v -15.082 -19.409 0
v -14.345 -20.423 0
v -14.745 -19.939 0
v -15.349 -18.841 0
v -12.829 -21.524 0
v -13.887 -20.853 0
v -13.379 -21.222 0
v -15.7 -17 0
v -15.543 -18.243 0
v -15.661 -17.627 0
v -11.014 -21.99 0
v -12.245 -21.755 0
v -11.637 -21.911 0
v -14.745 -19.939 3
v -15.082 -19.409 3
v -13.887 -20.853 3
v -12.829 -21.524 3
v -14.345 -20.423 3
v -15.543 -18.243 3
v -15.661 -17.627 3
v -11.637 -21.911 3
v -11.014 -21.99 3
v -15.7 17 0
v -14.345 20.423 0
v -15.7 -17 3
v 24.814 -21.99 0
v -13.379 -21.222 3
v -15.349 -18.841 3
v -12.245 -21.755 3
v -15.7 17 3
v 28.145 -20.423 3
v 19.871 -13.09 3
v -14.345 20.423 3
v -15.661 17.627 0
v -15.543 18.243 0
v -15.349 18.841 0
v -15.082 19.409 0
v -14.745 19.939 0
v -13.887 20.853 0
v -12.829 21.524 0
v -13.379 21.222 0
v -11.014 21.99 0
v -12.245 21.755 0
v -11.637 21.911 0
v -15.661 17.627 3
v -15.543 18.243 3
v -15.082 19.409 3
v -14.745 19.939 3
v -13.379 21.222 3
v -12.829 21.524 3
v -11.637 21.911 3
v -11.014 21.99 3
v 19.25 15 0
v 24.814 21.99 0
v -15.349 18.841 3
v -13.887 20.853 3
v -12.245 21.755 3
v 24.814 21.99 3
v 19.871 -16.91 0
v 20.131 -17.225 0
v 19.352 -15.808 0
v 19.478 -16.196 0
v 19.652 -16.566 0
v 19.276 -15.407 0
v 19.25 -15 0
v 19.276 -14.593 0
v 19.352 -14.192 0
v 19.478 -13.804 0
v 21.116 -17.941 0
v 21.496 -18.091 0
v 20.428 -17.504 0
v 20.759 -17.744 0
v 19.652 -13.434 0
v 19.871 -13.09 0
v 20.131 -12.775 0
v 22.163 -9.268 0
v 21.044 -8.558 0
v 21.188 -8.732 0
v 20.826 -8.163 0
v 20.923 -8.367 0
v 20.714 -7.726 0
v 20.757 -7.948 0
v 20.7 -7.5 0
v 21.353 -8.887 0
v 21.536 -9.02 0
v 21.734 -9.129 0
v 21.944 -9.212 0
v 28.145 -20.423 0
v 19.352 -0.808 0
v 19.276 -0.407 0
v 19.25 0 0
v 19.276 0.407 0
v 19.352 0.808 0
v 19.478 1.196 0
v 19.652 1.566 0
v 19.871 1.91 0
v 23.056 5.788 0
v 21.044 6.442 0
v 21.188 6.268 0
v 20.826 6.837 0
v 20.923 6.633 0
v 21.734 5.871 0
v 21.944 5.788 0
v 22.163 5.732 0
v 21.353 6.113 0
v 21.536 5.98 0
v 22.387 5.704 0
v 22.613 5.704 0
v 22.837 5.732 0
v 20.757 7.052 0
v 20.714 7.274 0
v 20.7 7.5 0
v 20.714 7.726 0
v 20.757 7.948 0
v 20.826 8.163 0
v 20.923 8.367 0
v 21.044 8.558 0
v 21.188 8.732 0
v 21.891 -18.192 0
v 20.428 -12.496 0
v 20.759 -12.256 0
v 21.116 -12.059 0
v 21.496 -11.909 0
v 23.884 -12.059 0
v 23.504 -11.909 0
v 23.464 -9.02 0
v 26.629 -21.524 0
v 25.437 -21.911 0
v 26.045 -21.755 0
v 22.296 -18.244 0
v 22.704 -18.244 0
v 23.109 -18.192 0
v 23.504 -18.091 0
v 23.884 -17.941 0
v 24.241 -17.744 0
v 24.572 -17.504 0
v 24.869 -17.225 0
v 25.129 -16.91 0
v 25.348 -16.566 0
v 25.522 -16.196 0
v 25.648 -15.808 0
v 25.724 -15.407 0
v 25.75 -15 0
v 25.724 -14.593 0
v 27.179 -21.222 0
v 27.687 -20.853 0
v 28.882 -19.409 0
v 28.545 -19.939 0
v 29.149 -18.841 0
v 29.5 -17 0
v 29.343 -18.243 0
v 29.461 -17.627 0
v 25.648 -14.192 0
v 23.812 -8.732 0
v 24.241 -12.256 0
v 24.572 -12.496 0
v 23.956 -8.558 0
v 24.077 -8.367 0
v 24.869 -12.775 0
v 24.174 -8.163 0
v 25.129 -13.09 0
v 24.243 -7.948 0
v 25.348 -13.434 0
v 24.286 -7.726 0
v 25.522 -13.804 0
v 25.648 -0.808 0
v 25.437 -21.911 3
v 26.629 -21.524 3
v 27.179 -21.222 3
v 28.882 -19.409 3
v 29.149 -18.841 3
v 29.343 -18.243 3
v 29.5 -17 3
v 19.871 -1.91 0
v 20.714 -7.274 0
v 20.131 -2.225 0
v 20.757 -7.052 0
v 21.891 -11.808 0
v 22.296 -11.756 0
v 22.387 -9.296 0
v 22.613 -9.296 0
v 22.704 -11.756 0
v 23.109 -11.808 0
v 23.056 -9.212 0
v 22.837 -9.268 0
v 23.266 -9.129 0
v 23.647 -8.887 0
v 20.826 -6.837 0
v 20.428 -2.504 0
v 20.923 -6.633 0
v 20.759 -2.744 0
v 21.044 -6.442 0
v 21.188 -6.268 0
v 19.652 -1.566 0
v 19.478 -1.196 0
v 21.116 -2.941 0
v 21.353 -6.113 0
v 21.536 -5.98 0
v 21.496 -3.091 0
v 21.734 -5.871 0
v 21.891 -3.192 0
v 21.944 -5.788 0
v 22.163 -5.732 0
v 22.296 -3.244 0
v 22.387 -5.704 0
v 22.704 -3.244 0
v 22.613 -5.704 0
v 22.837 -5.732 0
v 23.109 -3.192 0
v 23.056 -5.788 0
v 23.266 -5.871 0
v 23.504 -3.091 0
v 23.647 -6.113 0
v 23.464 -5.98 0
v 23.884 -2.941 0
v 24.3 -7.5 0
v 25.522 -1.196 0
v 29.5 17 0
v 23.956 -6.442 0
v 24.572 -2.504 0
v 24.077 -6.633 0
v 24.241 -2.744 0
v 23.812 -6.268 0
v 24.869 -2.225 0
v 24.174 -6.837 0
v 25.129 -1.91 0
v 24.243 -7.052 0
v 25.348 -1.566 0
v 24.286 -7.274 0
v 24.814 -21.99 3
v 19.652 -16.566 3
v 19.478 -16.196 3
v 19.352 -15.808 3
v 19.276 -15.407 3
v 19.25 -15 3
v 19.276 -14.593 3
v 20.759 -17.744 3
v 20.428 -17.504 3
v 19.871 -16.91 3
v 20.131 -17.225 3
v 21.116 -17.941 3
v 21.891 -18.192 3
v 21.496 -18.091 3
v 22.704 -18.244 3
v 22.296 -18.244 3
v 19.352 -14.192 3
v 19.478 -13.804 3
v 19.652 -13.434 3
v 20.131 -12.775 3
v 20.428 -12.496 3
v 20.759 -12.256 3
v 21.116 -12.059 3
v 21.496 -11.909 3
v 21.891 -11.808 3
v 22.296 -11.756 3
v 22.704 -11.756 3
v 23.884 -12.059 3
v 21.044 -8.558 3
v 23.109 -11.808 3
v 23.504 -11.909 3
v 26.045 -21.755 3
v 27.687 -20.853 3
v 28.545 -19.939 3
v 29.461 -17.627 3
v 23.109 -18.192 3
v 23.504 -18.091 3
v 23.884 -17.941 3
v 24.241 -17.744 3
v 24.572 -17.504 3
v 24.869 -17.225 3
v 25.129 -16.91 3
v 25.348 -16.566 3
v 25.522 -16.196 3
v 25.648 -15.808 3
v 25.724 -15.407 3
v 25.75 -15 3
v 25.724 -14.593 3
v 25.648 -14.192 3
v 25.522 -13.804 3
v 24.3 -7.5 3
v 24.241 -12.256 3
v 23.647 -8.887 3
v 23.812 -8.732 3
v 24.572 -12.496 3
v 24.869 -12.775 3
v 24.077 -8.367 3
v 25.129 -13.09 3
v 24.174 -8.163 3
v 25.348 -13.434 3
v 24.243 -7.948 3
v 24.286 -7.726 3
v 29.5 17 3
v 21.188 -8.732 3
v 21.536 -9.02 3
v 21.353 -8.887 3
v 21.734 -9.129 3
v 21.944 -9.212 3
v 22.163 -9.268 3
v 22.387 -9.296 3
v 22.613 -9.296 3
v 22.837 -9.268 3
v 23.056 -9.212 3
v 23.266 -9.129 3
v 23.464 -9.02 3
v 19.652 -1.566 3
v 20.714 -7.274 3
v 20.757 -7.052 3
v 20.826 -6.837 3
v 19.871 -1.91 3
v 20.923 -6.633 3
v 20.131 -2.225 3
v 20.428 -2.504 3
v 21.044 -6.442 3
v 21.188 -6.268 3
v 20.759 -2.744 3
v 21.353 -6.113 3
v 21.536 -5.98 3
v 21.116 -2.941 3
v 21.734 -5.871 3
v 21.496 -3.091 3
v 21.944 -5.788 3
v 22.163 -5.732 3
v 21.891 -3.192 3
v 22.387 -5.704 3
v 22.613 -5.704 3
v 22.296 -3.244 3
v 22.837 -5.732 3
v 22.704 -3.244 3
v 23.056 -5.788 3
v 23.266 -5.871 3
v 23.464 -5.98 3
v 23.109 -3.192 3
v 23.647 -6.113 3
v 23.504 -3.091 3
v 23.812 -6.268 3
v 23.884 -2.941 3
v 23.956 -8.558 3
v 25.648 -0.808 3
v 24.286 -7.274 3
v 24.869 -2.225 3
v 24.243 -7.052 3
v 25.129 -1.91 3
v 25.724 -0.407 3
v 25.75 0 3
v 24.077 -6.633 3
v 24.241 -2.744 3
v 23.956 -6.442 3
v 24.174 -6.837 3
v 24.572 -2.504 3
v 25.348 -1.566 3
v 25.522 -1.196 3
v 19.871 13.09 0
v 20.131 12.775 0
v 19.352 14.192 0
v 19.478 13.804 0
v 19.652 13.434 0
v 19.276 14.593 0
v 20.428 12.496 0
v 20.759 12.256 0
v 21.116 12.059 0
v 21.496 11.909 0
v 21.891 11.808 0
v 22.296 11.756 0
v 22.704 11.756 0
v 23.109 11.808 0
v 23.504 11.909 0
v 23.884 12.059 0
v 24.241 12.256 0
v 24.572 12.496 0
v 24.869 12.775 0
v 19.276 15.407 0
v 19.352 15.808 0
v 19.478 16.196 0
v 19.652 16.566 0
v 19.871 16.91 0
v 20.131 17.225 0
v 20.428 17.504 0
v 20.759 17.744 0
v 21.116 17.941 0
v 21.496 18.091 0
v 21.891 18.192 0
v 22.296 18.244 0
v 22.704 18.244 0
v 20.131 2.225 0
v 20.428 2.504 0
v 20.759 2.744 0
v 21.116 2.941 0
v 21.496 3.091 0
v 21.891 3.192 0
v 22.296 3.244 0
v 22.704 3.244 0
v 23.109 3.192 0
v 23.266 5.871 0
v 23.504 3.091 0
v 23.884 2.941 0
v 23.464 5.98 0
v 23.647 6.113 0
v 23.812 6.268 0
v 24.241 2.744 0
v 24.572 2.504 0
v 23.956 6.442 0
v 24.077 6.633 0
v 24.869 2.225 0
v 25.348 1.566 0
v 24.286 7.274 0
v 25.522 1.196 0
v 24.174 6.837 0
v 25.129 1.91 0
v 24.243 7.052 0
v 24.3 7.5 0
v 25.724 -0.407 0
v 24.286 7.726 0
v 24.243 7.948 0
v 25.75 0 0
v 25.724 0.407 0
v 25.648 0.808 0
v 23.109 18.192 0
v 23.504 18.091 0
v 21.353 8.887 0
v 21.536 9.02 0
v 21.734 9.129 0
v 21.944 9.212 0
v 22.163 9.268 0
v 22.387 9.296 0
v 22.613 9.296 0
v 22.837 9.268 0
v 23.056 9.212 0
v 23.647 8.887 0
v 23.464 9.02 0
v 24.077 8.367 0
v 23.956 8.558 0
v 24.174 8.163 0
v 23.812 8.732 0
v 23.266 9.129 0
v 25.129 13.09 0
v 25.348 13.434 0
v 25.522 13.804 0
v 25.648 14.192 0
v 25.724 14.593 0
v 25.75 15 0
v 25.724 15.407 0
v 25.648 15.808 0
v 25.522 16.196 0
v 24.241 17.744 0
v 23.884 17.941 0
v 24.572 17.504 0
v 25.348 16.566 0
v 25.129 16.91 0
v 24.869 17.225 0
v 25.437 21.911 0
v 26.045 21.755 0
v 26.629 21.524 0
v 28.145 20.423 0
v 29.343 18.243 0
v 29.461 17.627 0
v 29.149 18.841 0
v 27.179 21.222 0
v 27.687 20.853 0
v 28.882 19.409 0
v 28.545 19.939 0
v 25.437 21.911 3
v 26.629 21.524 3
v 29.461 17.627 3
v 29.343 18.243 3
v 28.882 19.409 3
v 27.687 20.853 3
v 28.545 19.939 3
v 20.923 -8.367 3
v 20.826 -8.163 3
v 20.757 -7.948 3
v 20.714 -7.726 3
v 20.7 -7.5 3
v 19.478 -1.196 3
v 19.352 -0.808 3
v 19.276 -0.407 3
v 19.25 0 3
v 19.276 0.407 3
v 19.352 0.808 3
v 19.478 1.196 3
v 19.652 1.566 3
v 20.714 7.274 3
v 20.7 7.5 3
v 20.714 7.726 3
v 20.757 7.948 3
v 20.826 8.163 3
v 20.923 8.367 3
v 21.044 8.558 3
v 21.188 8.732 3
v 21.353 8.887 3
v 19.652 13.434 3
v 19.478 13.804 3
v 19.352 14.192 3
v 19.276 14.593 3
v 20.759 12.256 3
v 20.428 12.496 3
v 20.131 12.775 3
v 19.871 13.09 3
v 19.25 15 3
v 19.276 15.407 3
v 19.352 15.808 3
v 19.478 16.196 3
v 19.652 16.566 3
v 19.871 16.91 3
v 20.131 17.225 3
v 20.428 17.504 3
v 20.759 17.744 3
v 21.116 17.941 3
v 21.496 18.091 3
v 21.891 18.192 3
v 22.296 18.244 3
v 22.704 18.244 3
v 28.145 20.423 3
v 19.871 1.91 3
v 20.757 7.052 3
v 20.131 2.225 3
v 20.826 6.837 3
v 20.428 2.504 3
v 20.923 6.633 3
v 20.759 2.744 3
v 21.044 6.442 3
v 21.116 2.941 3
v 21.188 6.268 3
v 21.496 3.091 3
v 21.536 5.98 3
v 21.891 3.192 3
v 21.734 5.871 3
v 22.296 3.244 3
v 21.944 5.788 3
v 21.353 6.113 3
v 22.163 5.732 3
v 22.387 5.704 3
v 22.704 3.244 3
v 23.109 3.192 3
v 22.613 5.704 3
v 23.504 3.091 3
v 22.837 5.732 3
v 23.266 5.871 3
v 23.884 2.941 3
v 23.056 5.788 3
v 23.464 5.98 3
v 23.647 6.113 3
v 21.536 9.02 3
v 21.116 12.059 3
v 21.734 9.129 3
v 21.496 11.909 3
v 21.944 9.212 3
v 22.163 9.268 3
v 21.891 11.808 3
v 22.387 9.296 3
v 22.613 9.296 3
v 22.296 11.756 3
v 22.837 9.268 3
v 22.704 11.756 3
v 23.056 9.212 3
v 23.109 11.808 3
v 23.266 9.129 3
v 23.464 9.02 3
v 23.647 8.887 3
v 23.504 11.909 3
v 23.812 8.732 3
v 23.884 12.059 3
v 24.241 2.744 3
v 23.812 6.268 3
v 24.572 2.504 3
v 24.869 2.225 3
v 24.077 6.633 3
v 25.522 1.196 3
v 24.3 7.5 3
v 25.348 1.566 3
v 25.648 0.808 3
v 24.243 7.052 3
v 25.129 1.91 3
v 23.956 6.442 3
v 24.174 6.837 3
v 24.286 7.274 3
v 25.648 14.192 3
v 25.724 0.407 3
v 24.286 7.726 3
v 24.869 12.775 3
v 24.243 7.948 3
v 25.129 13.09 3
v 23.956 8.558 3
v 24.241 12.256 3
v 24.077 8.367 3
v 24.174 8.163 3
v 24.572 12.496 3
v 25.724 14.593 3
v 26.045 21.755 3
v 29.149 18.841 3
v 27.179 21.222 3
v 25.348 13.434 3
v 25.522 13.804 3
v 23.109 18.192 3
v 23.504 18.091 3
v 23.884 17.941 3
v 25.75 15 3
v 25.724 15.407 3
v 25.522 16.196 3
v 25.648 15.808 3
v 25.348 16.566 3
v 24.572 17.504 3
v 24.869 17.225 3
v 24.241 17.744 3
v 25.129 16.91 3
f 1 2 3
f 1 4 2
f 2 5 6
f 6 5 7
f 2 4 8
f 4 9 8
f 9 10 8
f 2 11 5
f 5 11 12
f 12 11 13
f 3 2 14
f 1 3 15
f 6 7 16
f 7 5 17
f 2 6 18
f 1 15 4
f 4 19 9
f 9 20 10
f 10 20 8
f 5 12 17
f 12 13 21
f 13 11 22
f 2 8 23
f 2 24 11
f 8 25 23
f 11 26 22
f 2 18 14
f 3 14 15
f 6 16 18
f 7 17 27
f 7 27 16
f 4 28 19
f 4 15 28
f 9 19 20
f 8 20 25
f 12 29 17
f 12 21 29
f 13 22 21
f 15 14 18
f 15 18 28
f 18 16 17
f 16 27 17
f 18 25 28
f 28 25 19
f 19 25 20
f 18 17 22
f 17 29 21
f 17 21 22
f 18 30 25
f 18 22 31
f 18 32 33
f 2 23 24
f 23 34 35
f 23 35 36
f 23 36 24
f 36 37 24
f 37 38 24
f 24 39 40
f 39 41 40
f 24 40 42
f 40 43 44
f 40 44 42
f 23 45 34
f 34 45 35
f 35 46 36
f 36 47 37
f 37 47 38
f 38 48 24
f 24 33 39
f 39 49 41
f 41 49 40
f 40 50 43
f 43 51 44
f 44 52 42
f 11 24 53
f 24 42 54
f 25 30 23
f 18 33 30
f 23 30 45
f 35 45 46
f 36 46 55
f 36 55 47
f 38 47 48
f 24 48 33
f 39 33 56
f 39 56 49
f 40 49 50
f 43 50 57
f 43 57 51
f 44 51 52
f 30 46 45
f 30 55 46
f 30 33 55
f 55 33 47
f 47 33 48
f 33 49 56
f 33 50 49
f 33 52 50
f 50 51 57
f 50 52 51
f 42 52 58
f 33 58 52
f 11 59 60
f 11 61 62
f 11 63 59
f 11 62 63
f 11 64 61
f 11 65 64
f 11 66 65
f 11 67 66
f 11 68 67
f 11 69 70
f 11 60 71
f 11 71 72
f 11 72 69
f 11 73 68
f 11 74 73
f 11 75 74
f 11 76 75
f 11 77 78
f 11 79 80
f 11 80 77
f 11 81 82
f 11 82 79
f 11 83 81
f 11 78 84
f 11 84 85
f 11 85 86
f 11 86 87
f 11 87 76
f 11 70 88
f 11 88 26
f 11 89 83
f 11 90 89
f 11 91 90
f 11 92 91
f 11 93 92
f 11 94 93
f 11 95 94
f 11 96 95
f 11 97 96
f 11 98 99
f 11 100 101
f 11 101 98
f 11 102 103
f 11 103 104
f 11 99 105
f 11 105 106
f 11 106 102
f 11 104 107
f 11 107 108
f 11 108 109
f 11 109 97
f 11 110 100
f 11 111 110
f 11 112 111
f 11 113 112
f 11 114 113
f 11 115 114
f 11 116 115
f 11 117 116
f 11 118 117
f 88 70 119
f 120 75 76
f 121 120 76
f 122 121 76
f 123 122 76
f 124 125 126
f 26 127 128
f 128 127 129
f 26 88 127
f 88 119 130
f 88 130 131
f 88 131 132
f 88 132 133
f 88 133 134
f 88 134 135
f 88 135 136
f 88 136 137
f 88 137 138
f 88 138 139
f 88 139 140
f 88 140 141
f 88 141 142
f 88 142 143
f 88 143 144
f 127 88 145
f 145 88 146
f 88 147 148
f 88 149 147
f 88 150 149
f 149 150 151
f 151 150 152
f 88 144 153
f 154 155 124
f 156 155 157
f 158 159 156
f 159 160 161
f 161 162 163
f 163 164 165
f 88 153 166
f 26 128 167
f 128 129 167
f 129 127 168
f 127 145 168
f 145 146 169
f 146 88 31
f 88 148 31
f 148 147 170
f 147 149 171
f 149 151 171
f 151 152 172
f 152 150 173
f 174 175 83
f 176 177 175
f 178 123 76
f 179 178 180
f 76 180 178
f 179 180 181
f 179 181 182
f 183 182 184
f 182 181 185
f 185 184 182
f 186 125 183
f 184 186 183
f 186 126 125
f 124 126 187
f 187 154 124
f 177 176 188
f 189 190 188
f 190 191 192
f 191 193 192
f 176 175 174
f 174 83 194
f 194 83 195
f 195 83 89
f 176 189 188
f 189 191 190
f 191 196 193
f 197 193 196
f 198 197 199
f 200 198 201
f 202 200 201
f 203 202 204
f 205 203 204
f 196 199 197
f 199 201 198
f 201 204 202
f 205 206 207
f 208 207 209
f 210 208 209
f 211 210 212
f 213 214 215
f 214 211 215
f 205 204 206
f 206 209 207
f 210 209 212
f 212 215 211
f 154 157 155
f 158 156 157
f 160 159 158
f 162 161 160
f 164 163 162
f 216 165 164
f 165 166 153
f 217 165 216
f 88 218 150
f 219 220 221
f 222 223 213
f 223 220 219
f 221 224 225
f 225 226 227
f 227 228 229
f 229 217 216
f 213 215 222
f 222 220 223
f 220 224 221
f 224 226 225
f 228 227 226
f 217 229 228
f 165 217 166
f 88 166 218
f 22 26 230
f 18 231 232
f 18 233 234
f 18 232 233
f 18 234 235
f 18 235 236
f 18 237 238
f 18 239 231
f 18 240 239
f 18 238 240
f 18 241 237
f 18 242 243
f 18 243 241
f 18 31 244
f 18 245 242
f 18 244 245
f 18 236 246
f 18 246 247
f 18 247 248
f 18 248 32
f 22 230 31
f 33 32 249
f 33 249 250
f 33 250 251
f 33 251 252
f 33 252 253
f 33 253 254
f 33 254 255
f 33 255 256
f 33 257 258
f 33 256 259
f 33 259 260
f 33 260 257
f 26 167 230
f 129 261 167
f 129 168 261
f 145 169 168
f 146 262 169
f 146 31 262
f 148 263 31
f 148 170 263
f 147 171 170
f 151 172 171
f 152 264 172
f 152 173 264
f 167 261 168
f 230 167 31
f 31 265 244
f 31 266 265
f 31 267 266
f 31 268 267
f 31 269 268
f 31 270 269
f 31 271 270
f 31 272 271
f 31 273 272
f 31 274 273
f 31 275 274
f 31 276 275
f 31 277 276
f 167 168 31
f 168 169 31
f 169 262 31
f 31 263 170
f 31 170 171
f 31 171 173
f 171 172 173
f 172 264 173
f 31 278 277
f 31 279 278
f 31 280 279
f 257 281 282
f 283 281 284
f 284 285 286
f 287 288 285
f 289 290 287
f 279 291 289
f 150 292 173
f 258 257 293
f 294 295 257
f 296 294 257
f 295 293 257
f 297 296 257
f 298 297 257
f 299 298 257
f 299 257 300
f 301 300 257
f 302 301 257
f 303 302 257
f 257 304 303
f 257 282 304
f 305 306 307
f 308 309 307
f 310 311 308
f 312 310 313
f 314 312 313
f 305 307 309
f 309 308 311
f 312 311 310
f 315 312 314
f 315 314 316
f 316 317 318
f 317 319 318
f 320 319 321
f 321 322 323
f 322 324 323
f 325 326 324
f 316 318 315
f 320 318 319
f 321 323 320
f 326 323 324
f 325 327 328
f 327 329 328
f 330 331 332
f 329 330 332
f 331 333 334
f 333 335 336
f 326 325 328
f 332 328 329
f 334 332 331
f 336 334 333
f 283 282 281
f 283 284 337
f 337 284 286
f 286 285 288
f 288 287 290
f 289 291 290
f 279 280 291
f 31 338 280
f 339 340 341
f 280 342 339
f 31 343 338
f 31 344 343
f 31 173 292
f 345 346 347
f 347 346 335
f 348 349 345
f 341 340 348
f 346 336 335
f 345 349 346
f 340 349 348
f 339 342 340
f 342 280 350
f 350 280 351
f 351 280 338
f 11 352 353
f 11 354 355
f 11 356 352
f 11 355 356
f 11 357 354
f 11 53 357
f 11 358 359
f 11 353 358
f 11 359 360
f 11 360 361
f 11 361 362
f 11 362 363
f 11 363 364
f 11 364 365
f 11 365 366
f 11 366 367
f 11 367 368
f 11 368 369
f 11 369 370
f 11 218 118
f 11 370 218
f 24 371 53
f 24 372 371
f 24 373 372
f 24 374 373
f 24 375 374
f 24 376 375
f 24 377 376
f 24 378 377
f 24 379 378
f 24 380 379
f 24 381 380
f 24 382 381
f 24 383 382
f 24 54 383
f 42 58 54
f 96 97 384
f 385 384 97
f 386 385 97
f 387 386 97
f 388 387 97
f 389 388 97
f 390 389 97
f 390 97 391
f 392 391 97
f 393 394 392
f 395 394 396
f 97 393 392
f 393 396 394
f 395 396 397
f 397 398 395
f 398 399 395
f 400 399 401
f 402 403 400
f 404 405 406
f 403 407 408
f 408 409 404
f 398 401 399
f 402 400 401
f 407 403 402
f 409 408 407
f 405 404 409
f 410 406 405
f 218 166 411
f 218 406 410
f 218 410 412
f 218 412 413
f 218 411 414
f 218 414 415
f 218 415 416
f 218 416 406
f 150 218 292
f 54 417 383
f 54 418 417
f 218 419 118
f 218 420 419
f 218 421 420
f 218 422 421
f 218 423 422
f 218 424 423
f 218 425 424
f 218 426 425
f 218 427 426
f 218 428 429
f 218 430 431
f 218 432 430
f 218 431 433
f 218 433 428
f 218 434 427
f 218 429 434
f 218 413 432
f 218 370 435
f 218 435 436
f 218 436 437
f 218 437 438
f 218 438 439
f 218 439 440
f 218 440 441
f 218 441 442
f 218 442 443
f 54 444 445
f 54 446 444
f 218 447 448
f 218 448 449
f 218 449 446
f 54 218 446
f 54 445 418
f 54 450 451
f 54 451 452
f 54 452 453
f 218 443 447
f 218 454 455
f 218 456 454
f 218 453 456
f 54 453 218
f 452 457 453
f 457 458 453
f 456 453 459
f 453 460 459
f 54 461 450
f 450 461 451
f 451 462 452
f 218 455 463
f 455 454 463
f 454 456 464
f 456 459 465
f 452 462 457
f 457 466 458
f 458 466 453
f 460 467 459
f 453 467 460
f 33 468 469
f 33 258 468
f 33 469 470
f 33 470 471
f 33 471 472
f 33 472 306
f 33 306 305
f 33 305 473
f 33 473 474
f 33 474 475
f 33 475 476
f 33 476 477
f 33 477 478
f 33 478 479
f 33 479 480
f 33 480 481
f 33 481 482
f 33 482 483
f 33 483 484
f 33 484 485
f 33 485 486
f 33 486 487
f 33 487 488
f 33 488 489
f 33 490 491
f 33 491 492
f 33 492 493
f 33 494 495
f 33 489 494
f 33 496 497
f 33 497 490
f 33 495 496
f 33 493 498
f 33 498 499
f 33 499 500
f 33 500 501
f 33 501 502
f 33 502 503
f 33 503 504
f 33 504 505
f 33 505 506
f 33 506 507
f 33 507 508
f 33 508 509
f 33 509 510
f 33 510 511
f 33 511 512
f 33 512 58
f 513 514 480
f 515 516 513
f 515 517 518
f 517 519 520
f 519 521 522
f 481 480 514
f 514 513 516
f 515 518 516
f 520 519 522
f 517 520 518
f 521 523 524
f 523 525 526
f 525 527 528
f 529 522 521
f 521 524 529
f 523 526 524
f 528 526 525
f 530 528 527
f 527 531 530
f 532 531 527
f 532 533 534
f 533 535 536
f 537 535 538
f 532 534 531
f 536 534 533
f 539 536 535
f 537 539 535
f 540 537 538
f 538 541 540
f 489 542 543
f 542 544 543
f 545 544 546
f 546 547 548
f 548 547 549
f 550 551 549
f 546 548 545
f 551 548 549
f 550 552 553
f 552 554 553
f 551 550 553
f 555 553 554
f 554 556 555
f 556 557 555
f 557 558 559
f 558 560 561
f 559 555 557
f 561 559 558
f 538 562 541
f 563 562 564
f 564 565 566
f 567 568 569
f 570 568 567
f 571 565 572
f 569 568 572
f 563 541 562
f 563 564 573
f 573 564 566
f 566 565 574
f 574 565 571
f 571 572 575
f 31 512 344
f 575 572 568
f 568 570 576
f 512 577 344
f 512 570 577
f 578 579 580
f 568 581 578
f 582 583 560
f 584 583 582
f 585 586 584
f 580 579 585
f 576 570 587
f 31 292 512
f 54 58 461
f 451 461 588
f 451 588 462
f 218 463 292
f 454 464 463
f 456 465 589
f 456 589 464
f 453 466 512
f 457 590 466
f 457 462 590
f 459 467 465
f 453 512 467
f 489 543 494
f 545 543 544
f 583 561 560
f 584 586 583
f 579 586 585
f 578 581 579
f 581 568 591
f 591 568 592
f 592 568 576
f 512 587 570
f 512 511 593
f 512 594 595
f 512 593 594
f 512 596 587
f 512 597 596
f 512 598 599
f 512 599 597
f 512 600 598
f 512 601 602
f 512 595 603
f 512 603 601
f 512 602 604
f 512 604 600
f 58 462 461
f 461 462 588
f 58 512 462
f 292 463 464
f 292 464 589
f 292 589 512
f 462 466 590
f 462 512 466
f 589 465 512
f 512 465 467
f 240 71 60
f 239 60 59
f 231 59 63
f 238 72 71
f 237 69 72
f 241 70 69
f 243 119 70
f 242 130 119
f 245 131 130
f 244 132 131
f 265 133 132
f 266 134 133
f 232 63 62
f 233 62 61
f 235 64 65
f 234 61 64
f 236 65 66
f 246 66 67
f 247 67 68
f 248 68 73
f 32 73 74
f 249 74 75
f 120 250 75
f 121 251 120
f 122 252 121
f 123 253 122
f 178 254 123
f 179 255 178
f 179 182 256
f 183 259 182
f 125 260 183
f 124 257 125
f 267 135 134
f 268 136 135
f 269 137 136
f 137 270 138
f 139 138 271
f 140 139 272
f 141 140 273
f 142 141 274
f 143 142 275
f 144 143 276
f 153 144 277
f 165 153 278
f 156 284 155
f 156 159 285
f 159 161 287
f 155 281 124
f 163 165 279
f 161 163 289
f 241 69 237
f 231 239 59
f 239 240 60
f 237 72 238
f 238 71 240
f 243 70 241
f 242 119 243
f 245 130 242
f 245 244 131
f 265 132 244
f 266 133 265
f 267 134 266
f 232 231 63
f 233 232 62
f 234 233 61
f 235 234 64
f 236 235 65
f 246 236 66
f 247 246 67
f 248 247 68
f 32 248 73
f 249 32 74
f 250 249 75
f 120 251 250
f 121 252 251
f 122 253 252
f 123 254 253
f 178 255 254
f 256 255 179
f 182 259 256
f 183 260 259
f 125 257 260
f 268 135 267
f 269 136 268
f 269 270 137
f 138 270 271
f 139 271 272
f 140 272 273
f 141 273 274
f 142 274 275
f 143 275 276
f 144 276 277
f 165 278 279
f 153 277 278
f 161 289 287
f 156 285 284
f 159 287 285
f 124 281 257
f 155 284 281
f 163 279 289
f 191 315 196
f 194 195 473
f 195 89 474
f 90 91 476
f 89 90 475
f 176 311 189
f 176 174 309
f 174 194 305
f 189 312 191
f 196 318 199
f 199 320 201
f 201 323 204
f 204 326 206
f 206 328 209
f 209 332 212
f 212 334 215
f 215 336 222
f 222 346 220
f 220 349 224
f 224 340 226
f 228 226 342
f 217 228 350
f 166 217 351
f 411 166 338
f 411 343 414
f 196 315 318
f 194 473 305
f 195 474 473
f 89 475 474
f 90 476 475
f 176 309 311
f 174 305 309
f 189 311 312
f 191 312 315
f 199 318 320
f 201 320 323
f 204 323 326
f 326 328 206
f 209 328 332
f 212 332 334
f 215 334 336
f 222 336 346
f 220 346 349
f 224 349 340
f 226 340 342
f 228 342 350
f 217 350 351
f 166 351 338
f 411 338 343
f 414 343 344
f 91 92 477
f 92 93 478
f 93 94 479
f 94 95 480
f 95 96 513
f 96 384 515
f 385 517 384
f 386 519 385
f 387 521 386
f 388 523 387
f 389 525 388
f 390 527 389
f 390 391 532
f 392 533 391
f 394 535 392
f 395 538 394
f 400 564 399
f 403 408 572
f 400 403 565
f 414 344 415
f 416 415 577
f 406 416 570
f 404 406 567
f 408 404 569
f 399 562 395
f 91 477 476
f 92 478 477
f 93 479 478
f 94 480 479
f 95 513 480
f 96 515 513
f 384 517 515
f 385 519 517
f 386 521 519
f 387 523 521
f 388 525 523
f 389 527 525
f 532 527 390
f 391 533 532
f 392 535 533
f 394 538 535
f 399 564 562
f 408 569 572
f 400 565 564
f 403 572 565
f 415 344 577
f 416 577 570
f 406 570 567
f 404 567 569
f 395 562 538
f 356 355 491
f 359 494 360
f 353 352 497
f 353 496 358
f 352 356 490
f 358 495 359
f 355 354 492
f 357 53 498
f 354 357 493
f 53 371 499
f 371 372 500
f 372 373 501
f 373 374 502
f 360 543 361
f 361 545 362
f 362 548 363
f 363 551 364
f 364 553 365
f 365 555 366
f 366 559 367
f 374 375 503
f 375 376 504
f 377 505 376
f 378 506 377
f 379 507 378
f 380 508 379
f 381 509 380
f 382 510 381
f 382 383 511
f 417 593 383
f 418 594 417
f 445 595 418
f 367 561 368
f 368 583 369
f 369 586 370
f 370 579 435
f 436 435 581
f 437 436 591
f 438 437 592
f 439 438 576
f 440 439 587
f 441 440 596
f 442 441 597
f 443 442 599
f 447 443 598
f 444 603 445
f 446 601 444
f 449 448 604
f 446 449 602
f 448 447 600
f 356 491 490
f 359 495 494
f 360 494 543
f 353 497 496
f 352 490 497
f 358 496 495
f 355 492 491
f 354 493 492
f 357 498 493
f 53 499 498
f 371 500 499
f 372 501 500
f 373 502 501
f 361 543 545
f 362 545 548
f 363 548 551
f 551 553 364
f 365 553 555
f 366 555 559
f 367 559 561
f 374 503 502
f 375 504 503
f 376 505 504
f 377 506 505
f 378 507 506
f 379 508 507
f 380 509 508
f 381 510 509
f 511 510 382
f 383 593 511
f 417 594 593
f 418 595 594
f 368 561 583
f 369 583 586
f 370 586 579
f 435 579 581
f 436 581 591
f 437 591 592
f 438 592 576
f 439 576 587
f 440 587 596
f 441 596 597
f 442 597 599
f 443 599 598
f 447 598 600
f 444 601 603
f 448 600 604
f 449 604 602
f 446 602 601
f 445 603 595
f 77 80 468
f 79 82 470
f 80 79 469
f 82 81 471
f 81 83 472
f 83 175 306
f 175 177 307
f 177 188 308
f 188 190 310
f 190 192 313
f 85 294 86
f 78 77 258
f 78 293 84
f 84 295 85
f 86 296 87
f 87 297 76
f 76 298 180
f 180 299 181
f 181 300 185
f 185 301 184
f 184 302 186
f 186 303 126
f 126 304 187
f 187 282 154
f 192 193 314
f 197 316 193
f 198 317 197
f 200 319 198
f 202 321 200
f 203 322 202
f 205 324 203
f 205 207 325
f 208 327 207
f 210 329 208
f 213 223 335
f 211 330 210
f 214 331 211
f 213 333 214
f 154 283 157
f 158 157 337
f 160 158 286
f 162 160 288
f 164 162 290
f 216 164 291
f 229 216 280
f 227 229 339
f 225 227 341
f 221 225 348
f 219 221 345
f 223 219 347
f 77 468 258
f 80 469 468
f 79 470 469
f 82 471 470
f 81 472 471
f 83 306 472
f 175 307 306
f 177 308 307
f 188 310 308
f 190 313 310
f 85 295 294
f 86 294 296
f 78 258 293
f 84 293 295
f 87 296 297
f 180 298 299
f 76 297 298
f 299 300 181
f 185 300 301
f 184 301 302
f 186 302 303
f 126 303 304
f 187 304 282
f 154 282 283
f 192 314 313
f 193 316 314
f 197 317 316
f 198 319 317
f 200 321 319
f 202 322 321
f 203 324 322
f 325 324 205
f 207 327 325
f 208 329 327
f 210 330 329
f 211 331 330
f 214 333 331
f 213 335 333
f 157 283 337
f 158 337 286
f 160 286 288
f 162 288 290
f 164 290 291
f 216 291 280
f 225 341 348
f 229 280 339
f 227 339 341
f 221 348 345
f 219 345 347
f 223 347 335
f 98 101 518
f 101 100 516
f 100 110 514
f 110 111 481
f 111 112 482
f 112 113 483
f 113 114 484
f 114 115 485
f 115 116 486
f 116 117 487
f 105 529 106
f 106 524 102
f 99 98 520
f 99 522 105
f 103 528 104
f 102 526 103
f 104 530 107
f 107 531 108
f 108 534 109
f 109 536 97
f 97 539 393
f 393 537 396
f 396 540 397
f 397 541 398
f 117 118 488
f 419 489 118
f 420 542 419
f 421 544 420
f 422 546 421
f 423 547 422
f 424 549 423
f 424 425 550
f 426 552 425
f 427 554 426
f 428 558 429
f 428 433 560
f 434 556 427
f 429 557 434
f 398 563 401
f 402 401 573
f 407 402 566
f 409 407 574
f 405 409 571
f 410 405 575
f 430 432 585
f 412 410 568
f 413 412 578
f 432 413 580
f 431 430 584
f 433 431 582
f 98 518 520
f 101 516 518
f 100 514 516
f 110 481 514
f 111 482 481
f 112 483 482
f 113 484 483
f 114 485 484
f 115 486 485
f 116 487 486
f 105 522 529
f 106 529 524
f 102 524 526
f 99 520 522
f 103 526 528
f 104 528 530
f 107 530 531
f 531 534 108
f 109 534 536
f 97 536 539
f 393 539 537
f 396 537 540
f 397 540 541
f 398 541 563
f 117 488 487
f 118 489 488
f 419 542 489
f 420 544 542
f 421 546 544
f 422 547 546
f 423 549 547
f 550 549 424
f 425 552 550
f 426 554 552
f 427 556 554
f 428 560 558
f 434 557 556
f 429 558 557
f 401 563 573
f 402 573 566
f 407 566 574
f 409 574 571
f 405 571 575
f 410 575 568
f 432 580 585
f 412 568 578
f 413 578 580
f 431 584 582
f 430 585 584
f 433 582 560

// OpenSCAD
$fn = 50;

difference() {
	union() {
		translate(v = [6.9, 0.0, 0]) {
			hull() {
				translate(v = [-17.6, 17.0, 0]) {
					cylinder(h = 3, r = 5);
				}
				translate(v = [17.6, 17.0, 0]) {
					cylinder(h = 3, r = 5);
				}
				translate(v = [-17.6, -17.0, 0]) {
					cylinder(h = 3, r = 5);
				}
				translate(v = [17.6, -17.0, 0]) {
					cylinder(h = 3, r = 5);
				}
			}
		}
	}
	union() {
		translate(v = [22.5, -15.0, -1]) {
			cylinder(h = 5, r = 3.25);
		}
		translate(v = [22.5, 0.0, -1]) {
			cylinder(h = 5, r = 3.25);
		}
		translate(v = [22.5, 15.0, -1]) {
			cylinder(h = 5, r = 3.25);
		}
		translate(v = [22.5, -7.5, -1]) {
			cylinder(h = 5, r = 1.8);
		}
		translate(v = [22.5, 7.5, -1]) {
			cylinder(h = 5, r = 1.8);
		}
	}
}
